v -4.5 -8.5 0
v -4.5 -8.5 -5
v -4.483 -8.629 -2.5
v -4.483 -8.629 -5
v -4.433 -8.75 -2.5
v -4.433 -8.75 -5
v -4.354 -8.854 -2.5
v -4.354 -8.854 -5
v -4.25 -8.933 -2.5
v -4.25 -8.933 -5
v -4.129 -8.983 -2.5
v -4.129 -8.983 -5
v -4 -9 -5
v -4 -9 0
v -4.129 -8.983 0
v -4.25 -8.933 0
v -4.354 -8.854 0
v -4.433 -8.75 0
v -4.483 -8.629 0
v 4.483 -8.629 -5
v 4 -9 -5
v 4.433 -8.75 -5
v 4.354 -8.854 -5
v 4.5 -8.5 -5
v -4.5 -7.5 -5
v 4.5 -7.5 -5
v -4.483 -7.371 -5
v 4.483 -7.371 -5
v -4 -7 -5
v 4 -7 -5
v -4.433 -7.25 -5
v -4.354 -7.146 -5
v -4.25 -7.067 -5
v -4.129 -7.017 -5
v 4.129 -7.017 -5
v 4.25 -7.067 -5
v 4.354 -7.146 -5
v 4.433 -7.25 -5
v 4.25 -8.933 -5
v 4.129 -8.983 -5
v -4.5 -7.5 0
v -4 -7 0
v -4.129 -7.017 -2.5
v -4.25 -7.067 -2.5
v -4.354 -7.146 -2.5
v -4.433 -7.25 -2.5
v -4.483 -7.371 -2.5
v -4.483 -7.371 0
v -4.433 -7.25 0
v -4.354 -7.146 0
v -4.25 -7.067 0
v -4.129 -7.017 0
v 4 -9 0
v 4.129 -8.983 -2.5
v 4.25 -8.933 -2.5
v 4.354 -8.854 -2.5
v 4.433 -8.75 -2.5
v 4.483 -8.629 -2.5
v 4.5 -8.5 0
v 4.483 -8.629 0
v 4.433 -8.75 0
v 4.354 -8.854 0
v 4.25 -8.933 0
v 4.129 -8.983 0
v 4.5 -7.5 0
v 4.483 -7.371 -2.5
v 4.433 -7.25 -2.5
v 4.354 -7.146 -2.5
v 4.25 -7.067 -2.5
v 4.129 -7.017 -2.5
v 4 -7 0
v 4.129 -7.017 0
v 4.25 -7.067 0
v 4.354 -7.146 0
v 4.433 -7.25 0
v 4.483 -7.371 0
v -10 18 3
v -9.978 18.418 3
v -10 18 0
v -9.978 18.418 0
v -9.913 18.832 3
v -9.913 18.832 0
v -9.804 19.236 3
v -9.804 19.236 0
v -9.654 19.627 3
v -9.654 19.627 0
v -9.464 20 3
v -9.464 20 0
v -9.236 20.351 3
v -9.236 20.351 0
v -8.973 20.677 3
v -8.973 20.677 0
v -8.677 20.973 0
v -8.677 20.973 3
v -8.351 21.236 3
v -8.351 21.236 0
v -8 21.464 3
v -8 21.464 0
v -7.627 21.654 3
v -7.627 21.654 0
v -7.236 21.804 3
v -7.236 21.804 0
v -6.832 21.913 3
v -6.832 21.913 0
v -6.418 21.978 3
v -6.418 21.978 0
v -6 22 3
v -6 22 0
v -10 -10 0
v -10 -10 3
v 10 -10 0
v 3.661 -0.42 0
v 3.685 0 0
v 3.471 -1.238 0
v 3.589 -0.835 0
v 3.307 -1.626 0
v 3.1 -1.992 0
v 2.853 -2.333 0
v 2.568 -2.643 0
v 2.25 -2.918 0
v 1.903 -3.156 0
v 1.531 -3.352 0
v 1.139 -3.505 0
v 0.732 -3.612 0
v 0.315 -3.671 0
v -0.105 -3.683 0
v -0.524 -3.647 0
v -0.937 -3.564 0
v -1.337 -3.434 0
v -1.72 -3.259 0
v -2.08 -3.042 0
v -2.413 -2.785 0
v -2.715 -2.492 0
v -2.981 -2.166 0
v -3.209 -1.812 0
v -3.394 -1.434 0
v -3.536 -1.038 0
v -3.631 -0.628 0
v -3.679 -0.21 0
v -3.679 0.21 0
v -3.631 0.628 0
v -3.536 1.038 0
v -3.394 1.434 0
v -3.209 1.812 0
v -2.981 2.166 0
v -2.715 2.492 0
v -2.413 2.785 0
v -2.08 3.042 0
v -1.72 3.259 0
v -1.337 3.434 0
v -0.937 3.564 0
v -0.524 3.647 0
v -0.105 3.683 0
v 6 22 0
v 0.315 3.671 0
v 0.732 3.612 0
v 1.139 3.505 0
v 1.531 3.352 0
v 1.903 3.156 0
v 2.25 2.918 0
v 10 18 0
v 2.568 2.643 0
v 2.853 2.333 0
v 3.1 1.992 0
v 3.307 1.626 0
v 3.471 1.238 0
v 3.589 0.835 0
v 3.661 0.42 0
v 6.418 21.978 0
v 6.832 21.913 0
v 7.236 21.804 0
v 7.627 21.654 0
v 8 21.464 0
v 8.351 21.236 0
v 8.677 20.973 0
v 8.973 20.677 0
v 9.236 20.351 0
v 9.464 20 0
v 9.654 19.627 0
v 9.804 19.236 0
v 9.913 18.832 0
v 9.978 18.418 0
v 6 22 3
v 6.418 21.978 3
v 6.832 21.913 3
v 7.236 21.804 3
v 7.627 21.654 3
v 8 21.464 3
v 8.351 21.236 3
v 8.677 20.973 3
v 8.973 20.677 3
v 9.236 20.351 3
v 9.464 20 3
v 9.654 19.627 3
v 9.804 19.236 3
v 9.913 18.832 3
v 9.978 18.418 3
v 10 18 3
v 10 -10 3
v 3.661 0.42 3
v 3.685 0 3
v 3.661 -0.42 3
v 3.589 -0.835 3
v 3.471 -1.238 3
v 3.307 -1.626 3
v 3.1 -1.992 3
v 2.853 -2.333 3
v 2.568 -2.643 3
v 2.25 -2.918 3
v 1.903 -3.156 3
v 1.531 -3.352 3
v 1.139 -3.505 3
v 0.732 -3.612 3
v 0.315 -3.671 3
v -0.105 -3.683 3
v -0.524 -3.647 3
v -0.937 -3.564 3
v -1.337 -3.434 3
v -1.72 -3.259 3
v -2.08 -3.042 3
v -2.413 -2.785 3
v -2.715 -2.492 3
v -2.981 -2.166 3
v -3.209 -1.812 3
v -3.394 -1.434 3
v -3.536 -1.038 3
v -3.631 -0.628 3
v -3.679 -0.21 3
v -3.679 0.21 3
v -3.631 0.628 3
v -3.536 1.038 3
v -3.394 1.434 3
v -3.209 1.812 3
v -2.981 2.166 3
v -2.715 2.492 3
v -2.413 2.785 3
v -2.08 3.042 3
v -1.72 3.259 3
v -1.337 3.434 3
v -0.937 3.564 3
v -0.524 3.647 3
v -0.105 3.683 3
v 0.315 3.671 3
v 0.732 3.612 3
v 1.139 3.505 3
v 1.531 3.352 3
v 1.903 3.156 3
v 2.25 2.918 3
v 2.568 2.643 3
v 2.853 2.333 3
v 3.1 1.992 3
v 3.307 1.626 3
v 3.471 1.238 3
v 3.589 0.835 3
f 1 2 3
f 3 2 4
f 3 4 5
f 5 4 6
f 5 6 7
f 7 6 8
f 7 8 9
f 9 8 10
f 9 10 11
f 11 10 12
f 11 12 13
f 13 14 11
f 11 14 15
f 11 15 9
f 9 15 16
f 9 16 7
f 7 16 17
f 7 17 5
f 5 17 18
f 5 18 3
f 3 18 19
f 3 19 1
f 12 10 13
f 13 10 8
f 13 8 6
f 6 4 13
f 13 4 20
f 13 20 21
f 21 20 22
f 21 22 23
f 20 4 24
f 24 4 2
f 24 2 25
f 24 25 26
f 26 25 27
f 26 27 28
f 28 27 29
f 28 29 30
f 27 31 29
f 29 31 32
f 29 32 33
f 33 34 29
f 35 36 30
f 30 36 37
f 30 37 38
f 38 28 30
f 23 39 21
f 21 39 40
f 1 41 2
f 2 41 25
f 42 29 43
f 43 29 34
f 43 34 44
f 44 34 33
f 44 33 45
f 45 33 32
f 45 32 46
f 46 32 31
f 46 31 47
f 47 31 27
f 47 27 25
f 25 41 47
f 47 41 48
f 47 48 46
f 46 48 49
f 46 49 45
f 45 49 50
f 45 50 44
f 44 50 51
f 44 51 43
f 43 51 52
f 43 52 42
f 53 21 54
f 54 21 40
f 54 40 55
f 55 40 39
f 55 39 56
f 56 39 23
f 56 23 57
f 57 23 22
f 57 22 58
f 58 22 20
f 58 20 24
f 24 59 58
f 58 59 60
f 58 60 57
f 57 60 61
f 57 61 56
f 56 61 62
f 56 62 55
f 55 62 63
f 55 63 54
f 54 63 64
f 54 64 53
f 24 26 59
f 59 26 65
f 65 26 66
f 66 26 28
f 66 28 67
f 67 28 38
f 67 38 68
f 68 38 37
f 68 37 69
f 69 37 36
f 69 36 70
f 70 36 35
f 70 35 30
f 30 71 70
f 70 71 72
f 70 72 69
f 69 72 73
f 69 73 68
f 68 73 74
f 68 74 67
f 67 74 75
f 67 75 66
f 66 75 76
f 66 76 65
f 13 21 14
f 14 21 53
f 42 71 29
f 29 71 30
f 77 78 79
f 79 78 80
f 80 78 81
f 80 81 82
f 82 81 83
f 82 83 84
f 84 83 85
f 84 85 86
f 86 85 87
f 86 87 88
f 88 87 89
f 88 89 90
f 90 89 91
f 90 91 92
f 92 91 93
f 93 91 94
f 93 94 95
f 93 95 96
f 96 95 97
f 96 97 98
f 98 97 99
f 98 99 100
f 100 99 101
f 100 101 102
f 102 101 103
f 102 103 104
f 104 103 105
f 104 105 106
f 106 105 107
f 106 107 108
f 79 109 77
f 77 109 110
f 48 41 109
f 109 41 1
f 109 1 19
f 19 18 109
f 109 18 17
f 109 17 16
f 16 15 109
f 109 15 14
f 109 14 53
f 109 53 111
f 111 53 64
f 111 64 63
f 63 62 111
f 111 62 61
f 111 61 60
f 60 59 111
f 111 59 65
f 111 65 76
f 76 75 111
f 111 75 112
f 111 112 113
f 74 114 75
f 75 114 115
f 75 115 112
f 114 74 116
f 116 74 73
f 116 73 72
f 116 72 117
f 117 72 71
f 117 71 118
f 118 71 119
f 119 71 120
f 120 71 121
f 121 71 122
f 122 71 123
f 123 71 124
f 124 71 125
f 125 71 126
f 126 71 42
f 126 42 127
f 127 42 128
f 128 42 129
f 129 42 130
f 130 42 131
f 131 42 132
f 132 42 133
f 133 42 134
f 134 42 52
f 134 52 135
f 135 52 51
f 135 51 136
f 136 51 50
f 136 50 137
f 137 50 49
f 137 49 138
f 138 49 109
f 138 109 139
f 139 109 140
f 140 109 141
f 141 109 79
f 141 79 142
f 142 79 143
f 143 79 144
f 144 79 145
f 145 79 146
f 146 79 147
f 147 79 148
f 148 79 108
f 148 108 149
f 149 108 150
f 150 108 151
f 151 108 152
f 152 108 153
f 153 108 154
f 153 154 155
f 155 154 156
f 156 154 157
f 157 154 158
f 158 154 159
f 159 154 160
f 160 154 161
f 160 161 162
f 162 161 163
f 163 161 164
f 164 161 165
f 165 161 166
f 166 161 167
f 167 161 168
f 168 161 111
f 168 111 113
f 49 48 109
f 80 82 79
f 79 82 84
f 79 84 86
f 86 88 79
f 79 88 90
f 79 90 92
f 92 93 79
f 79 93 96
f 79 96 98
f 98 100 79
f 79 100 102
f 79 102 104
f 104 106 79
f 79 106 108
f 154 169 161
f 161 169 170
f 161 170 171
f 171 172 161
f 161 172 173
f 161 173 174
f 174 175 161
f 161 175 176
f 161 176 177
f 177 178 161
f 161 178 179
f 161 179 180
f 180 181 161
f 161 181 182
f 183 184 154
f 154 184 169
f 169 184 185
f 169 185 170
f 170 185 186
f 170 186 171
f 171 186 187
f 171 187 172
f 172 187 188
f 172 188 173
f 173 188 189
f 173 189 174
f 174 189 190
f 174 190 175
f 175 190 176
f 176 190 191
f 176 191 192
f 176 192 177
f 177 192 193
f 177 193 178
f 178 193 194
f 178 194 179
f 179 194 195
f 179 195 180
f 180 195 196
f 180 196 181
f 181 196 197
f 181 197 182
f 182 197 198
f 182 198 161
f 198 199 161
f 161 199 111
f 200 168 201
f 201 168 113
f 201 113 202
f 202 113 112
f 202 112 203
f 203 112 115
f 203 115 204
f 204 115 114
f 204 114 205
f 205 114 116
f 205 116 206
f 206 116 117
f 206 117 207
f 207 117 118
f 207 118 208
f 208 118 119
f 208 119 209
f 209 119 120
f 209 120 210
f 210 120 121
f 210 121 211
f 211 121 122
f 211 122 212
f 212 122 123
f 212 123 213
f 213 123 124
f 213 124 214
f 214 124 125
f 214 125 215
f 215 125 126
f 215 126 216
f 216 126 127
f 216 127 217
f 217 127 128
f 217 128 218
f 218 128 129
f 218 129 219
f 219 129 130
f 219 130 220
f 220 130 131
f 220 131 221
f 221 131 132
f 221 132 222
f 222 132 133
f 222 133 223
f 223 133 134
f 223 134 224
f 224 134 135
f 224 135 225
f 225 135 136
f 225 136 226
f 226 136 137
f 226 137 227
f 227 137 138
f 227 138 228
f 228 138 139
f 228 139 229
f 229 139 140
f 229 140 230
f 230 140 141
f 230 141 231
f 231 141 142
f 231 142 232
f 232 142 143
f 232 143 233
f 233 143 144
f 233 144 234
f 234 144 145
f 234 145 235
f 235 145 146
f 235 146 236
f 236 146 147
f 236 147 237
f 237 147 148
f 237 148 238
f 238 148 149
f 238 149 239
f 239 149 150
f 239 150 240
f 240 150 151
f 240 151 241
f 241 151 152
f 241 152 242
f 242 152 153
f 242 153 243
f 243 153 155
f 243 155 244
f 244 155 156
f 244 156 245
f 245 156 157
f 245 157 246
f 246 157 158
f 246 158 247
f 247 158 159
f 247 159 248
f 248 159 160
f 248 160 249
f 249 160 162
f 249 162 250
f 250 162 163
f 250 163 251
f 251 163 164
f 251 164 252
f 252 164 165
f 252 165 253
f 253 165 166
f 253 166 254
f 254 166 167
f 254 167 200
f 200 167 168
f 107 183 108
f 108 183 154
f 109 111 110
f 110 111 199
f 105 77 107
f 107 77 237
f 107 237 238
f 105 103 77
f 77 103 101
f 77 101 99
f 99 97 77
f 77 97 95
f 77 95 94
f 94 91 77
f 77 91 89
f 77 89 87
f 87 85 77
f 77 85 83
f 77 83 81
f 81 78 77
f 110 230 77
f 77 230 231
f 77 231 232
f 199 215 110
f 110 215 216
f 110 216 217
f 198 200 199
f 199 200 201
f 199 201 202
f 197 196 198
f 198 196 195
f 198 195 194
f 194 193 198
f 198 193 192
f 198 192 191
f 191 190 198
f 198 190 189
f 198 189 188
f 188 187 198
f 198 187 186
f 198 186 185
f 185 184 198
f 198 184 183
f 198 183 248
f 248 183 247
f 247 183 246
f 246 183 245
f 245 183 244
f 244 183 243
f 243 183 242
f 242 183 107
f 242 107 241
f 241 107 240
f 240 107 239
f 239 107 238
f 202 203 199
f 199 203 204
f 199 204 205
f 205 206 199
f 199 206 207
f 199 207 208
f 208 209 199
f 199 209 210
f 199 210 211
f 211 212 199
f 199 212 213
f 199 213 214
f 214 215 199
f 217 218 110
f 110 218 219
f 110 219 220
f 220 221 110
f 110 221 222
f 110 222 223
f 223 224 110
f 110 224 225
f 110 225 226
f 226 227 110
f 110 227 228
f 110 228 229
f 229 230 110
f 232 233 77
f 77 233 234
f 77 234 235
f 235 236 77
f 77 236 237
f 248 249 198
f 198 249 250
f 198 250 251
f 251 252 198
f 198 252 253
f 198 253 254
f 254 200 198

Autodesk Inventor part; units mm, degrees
ref_plane "YZ Plane" through (0, 0, 0) normal (1, 0, 0) x (0, 1, 0)
ref_plane "XZ Plane" through (0, 0, 0) normal (0, 1, 0) x (-1, 0, 0)
ref_plane "XY Plane" through (0, 0, 0) normal (0, 0, 1) x (1, 0, 0)
sketch "Sketch1" plane through (0, 0, 0) normal (0, 0, 1) x (1, 0, 0)
  line L0 (-10, -10) -> (10, -10)
  line L1 (10, -10) -> (10, 22)
  line L2 (10, 22) -> (-10, 22)
  line L3 (-10, 22) -> (-10, -10)
  line L4 (6.3, -6.7) -> (-6.3, -6.7) construction
  line L5 (6.3, 6.7) -> (6.3, -6.7) construction
  line L6 (-6.3, 6.7) -> (6.3, 6.7) construction
  line L7 (-6.3, -6.7) -> (-6.3, 6.7) construction
  line L8 (6.45, -6.85) -> (-6.45, -6.85)
  line L9 (-6.45, -6.85) -> (-6.45, 6.85)
  line L10 (-6.45, 6.85) -> (6.45, 6.85)
  line L11 (6.45, 6.85) -> (6.45, -6.85)
  circle A0 centre (0, 0) radius 3.535 construction
  circle A1 centre (0, 0) radius 3.685
  line L12 (4.65, -9.15) -> (-4.65, -9.15) construction
  line L13 (-4.65, -9.15) -> (-4.65, -6.85) construction
  line L14 (-4.65, -6.85) -> (4.65, -6.85) construction
  line L15 (4.65, -6.85) -> (4.65, -9.15) construction
  line L16 (4.5, -7) -> (-4.5, -7)
  line L17 (-4.5, -7) -> (-4.5, -9)
  line L18 (-4.5, -9) -> (4.5, -9)
  line L19 (4.5, -9) -> (4.5, -7)
  point P0 (0, 22)
  point P1 (0, 6.85)
  point P2 (6.45, 0)
  point P3 (0, -6.85)
  point P4 (0, -7)
  point P5 (0, -9)
  point P6 (0, -9.15)
  point P7 (0, -10)
  dimension "d0" = 20
  dimension "d1" = 32
  dimension "d2" = 0.15
  dimension "d3" = 0.15
  dimension "d5" = 7.07
  dimension "d6" = 12.9
  dimension "d7" = 13.7
  dimension "d8" = 22
  dimension "d18" = 2
  dimension "d19" = 2.3
  dimension "d20" = 9
  dimension "d21" = 9.3
  dimension "d22" = 0.85
extrude "Extrusion1" add sketch "Sketch1" along normal blind 3 contours L3 L2 L1 L0 | L19 L18 L17 L16
extrude "Extrusion2" add sketch "Sketch1" along normal blind 3 contours L8 L9 L10 L11
fillet "Fillet1" radius 4 2 edges at (10, 22, 1.5) (-10, 22, 1.5)
extrude "Extrusion3" add sketch "Sketch1" against normal blind 5 contours L19 L18 L17 L16
fillet "Fillet2" radius 0.5 4 edges at (4.5, -7, -2.5) (4.5, -9, -2.5) (-4.5, -7, -2.5) (-4.5, -9, -2.5)
properties part number "Rotary Encoder Mount Mk2"
